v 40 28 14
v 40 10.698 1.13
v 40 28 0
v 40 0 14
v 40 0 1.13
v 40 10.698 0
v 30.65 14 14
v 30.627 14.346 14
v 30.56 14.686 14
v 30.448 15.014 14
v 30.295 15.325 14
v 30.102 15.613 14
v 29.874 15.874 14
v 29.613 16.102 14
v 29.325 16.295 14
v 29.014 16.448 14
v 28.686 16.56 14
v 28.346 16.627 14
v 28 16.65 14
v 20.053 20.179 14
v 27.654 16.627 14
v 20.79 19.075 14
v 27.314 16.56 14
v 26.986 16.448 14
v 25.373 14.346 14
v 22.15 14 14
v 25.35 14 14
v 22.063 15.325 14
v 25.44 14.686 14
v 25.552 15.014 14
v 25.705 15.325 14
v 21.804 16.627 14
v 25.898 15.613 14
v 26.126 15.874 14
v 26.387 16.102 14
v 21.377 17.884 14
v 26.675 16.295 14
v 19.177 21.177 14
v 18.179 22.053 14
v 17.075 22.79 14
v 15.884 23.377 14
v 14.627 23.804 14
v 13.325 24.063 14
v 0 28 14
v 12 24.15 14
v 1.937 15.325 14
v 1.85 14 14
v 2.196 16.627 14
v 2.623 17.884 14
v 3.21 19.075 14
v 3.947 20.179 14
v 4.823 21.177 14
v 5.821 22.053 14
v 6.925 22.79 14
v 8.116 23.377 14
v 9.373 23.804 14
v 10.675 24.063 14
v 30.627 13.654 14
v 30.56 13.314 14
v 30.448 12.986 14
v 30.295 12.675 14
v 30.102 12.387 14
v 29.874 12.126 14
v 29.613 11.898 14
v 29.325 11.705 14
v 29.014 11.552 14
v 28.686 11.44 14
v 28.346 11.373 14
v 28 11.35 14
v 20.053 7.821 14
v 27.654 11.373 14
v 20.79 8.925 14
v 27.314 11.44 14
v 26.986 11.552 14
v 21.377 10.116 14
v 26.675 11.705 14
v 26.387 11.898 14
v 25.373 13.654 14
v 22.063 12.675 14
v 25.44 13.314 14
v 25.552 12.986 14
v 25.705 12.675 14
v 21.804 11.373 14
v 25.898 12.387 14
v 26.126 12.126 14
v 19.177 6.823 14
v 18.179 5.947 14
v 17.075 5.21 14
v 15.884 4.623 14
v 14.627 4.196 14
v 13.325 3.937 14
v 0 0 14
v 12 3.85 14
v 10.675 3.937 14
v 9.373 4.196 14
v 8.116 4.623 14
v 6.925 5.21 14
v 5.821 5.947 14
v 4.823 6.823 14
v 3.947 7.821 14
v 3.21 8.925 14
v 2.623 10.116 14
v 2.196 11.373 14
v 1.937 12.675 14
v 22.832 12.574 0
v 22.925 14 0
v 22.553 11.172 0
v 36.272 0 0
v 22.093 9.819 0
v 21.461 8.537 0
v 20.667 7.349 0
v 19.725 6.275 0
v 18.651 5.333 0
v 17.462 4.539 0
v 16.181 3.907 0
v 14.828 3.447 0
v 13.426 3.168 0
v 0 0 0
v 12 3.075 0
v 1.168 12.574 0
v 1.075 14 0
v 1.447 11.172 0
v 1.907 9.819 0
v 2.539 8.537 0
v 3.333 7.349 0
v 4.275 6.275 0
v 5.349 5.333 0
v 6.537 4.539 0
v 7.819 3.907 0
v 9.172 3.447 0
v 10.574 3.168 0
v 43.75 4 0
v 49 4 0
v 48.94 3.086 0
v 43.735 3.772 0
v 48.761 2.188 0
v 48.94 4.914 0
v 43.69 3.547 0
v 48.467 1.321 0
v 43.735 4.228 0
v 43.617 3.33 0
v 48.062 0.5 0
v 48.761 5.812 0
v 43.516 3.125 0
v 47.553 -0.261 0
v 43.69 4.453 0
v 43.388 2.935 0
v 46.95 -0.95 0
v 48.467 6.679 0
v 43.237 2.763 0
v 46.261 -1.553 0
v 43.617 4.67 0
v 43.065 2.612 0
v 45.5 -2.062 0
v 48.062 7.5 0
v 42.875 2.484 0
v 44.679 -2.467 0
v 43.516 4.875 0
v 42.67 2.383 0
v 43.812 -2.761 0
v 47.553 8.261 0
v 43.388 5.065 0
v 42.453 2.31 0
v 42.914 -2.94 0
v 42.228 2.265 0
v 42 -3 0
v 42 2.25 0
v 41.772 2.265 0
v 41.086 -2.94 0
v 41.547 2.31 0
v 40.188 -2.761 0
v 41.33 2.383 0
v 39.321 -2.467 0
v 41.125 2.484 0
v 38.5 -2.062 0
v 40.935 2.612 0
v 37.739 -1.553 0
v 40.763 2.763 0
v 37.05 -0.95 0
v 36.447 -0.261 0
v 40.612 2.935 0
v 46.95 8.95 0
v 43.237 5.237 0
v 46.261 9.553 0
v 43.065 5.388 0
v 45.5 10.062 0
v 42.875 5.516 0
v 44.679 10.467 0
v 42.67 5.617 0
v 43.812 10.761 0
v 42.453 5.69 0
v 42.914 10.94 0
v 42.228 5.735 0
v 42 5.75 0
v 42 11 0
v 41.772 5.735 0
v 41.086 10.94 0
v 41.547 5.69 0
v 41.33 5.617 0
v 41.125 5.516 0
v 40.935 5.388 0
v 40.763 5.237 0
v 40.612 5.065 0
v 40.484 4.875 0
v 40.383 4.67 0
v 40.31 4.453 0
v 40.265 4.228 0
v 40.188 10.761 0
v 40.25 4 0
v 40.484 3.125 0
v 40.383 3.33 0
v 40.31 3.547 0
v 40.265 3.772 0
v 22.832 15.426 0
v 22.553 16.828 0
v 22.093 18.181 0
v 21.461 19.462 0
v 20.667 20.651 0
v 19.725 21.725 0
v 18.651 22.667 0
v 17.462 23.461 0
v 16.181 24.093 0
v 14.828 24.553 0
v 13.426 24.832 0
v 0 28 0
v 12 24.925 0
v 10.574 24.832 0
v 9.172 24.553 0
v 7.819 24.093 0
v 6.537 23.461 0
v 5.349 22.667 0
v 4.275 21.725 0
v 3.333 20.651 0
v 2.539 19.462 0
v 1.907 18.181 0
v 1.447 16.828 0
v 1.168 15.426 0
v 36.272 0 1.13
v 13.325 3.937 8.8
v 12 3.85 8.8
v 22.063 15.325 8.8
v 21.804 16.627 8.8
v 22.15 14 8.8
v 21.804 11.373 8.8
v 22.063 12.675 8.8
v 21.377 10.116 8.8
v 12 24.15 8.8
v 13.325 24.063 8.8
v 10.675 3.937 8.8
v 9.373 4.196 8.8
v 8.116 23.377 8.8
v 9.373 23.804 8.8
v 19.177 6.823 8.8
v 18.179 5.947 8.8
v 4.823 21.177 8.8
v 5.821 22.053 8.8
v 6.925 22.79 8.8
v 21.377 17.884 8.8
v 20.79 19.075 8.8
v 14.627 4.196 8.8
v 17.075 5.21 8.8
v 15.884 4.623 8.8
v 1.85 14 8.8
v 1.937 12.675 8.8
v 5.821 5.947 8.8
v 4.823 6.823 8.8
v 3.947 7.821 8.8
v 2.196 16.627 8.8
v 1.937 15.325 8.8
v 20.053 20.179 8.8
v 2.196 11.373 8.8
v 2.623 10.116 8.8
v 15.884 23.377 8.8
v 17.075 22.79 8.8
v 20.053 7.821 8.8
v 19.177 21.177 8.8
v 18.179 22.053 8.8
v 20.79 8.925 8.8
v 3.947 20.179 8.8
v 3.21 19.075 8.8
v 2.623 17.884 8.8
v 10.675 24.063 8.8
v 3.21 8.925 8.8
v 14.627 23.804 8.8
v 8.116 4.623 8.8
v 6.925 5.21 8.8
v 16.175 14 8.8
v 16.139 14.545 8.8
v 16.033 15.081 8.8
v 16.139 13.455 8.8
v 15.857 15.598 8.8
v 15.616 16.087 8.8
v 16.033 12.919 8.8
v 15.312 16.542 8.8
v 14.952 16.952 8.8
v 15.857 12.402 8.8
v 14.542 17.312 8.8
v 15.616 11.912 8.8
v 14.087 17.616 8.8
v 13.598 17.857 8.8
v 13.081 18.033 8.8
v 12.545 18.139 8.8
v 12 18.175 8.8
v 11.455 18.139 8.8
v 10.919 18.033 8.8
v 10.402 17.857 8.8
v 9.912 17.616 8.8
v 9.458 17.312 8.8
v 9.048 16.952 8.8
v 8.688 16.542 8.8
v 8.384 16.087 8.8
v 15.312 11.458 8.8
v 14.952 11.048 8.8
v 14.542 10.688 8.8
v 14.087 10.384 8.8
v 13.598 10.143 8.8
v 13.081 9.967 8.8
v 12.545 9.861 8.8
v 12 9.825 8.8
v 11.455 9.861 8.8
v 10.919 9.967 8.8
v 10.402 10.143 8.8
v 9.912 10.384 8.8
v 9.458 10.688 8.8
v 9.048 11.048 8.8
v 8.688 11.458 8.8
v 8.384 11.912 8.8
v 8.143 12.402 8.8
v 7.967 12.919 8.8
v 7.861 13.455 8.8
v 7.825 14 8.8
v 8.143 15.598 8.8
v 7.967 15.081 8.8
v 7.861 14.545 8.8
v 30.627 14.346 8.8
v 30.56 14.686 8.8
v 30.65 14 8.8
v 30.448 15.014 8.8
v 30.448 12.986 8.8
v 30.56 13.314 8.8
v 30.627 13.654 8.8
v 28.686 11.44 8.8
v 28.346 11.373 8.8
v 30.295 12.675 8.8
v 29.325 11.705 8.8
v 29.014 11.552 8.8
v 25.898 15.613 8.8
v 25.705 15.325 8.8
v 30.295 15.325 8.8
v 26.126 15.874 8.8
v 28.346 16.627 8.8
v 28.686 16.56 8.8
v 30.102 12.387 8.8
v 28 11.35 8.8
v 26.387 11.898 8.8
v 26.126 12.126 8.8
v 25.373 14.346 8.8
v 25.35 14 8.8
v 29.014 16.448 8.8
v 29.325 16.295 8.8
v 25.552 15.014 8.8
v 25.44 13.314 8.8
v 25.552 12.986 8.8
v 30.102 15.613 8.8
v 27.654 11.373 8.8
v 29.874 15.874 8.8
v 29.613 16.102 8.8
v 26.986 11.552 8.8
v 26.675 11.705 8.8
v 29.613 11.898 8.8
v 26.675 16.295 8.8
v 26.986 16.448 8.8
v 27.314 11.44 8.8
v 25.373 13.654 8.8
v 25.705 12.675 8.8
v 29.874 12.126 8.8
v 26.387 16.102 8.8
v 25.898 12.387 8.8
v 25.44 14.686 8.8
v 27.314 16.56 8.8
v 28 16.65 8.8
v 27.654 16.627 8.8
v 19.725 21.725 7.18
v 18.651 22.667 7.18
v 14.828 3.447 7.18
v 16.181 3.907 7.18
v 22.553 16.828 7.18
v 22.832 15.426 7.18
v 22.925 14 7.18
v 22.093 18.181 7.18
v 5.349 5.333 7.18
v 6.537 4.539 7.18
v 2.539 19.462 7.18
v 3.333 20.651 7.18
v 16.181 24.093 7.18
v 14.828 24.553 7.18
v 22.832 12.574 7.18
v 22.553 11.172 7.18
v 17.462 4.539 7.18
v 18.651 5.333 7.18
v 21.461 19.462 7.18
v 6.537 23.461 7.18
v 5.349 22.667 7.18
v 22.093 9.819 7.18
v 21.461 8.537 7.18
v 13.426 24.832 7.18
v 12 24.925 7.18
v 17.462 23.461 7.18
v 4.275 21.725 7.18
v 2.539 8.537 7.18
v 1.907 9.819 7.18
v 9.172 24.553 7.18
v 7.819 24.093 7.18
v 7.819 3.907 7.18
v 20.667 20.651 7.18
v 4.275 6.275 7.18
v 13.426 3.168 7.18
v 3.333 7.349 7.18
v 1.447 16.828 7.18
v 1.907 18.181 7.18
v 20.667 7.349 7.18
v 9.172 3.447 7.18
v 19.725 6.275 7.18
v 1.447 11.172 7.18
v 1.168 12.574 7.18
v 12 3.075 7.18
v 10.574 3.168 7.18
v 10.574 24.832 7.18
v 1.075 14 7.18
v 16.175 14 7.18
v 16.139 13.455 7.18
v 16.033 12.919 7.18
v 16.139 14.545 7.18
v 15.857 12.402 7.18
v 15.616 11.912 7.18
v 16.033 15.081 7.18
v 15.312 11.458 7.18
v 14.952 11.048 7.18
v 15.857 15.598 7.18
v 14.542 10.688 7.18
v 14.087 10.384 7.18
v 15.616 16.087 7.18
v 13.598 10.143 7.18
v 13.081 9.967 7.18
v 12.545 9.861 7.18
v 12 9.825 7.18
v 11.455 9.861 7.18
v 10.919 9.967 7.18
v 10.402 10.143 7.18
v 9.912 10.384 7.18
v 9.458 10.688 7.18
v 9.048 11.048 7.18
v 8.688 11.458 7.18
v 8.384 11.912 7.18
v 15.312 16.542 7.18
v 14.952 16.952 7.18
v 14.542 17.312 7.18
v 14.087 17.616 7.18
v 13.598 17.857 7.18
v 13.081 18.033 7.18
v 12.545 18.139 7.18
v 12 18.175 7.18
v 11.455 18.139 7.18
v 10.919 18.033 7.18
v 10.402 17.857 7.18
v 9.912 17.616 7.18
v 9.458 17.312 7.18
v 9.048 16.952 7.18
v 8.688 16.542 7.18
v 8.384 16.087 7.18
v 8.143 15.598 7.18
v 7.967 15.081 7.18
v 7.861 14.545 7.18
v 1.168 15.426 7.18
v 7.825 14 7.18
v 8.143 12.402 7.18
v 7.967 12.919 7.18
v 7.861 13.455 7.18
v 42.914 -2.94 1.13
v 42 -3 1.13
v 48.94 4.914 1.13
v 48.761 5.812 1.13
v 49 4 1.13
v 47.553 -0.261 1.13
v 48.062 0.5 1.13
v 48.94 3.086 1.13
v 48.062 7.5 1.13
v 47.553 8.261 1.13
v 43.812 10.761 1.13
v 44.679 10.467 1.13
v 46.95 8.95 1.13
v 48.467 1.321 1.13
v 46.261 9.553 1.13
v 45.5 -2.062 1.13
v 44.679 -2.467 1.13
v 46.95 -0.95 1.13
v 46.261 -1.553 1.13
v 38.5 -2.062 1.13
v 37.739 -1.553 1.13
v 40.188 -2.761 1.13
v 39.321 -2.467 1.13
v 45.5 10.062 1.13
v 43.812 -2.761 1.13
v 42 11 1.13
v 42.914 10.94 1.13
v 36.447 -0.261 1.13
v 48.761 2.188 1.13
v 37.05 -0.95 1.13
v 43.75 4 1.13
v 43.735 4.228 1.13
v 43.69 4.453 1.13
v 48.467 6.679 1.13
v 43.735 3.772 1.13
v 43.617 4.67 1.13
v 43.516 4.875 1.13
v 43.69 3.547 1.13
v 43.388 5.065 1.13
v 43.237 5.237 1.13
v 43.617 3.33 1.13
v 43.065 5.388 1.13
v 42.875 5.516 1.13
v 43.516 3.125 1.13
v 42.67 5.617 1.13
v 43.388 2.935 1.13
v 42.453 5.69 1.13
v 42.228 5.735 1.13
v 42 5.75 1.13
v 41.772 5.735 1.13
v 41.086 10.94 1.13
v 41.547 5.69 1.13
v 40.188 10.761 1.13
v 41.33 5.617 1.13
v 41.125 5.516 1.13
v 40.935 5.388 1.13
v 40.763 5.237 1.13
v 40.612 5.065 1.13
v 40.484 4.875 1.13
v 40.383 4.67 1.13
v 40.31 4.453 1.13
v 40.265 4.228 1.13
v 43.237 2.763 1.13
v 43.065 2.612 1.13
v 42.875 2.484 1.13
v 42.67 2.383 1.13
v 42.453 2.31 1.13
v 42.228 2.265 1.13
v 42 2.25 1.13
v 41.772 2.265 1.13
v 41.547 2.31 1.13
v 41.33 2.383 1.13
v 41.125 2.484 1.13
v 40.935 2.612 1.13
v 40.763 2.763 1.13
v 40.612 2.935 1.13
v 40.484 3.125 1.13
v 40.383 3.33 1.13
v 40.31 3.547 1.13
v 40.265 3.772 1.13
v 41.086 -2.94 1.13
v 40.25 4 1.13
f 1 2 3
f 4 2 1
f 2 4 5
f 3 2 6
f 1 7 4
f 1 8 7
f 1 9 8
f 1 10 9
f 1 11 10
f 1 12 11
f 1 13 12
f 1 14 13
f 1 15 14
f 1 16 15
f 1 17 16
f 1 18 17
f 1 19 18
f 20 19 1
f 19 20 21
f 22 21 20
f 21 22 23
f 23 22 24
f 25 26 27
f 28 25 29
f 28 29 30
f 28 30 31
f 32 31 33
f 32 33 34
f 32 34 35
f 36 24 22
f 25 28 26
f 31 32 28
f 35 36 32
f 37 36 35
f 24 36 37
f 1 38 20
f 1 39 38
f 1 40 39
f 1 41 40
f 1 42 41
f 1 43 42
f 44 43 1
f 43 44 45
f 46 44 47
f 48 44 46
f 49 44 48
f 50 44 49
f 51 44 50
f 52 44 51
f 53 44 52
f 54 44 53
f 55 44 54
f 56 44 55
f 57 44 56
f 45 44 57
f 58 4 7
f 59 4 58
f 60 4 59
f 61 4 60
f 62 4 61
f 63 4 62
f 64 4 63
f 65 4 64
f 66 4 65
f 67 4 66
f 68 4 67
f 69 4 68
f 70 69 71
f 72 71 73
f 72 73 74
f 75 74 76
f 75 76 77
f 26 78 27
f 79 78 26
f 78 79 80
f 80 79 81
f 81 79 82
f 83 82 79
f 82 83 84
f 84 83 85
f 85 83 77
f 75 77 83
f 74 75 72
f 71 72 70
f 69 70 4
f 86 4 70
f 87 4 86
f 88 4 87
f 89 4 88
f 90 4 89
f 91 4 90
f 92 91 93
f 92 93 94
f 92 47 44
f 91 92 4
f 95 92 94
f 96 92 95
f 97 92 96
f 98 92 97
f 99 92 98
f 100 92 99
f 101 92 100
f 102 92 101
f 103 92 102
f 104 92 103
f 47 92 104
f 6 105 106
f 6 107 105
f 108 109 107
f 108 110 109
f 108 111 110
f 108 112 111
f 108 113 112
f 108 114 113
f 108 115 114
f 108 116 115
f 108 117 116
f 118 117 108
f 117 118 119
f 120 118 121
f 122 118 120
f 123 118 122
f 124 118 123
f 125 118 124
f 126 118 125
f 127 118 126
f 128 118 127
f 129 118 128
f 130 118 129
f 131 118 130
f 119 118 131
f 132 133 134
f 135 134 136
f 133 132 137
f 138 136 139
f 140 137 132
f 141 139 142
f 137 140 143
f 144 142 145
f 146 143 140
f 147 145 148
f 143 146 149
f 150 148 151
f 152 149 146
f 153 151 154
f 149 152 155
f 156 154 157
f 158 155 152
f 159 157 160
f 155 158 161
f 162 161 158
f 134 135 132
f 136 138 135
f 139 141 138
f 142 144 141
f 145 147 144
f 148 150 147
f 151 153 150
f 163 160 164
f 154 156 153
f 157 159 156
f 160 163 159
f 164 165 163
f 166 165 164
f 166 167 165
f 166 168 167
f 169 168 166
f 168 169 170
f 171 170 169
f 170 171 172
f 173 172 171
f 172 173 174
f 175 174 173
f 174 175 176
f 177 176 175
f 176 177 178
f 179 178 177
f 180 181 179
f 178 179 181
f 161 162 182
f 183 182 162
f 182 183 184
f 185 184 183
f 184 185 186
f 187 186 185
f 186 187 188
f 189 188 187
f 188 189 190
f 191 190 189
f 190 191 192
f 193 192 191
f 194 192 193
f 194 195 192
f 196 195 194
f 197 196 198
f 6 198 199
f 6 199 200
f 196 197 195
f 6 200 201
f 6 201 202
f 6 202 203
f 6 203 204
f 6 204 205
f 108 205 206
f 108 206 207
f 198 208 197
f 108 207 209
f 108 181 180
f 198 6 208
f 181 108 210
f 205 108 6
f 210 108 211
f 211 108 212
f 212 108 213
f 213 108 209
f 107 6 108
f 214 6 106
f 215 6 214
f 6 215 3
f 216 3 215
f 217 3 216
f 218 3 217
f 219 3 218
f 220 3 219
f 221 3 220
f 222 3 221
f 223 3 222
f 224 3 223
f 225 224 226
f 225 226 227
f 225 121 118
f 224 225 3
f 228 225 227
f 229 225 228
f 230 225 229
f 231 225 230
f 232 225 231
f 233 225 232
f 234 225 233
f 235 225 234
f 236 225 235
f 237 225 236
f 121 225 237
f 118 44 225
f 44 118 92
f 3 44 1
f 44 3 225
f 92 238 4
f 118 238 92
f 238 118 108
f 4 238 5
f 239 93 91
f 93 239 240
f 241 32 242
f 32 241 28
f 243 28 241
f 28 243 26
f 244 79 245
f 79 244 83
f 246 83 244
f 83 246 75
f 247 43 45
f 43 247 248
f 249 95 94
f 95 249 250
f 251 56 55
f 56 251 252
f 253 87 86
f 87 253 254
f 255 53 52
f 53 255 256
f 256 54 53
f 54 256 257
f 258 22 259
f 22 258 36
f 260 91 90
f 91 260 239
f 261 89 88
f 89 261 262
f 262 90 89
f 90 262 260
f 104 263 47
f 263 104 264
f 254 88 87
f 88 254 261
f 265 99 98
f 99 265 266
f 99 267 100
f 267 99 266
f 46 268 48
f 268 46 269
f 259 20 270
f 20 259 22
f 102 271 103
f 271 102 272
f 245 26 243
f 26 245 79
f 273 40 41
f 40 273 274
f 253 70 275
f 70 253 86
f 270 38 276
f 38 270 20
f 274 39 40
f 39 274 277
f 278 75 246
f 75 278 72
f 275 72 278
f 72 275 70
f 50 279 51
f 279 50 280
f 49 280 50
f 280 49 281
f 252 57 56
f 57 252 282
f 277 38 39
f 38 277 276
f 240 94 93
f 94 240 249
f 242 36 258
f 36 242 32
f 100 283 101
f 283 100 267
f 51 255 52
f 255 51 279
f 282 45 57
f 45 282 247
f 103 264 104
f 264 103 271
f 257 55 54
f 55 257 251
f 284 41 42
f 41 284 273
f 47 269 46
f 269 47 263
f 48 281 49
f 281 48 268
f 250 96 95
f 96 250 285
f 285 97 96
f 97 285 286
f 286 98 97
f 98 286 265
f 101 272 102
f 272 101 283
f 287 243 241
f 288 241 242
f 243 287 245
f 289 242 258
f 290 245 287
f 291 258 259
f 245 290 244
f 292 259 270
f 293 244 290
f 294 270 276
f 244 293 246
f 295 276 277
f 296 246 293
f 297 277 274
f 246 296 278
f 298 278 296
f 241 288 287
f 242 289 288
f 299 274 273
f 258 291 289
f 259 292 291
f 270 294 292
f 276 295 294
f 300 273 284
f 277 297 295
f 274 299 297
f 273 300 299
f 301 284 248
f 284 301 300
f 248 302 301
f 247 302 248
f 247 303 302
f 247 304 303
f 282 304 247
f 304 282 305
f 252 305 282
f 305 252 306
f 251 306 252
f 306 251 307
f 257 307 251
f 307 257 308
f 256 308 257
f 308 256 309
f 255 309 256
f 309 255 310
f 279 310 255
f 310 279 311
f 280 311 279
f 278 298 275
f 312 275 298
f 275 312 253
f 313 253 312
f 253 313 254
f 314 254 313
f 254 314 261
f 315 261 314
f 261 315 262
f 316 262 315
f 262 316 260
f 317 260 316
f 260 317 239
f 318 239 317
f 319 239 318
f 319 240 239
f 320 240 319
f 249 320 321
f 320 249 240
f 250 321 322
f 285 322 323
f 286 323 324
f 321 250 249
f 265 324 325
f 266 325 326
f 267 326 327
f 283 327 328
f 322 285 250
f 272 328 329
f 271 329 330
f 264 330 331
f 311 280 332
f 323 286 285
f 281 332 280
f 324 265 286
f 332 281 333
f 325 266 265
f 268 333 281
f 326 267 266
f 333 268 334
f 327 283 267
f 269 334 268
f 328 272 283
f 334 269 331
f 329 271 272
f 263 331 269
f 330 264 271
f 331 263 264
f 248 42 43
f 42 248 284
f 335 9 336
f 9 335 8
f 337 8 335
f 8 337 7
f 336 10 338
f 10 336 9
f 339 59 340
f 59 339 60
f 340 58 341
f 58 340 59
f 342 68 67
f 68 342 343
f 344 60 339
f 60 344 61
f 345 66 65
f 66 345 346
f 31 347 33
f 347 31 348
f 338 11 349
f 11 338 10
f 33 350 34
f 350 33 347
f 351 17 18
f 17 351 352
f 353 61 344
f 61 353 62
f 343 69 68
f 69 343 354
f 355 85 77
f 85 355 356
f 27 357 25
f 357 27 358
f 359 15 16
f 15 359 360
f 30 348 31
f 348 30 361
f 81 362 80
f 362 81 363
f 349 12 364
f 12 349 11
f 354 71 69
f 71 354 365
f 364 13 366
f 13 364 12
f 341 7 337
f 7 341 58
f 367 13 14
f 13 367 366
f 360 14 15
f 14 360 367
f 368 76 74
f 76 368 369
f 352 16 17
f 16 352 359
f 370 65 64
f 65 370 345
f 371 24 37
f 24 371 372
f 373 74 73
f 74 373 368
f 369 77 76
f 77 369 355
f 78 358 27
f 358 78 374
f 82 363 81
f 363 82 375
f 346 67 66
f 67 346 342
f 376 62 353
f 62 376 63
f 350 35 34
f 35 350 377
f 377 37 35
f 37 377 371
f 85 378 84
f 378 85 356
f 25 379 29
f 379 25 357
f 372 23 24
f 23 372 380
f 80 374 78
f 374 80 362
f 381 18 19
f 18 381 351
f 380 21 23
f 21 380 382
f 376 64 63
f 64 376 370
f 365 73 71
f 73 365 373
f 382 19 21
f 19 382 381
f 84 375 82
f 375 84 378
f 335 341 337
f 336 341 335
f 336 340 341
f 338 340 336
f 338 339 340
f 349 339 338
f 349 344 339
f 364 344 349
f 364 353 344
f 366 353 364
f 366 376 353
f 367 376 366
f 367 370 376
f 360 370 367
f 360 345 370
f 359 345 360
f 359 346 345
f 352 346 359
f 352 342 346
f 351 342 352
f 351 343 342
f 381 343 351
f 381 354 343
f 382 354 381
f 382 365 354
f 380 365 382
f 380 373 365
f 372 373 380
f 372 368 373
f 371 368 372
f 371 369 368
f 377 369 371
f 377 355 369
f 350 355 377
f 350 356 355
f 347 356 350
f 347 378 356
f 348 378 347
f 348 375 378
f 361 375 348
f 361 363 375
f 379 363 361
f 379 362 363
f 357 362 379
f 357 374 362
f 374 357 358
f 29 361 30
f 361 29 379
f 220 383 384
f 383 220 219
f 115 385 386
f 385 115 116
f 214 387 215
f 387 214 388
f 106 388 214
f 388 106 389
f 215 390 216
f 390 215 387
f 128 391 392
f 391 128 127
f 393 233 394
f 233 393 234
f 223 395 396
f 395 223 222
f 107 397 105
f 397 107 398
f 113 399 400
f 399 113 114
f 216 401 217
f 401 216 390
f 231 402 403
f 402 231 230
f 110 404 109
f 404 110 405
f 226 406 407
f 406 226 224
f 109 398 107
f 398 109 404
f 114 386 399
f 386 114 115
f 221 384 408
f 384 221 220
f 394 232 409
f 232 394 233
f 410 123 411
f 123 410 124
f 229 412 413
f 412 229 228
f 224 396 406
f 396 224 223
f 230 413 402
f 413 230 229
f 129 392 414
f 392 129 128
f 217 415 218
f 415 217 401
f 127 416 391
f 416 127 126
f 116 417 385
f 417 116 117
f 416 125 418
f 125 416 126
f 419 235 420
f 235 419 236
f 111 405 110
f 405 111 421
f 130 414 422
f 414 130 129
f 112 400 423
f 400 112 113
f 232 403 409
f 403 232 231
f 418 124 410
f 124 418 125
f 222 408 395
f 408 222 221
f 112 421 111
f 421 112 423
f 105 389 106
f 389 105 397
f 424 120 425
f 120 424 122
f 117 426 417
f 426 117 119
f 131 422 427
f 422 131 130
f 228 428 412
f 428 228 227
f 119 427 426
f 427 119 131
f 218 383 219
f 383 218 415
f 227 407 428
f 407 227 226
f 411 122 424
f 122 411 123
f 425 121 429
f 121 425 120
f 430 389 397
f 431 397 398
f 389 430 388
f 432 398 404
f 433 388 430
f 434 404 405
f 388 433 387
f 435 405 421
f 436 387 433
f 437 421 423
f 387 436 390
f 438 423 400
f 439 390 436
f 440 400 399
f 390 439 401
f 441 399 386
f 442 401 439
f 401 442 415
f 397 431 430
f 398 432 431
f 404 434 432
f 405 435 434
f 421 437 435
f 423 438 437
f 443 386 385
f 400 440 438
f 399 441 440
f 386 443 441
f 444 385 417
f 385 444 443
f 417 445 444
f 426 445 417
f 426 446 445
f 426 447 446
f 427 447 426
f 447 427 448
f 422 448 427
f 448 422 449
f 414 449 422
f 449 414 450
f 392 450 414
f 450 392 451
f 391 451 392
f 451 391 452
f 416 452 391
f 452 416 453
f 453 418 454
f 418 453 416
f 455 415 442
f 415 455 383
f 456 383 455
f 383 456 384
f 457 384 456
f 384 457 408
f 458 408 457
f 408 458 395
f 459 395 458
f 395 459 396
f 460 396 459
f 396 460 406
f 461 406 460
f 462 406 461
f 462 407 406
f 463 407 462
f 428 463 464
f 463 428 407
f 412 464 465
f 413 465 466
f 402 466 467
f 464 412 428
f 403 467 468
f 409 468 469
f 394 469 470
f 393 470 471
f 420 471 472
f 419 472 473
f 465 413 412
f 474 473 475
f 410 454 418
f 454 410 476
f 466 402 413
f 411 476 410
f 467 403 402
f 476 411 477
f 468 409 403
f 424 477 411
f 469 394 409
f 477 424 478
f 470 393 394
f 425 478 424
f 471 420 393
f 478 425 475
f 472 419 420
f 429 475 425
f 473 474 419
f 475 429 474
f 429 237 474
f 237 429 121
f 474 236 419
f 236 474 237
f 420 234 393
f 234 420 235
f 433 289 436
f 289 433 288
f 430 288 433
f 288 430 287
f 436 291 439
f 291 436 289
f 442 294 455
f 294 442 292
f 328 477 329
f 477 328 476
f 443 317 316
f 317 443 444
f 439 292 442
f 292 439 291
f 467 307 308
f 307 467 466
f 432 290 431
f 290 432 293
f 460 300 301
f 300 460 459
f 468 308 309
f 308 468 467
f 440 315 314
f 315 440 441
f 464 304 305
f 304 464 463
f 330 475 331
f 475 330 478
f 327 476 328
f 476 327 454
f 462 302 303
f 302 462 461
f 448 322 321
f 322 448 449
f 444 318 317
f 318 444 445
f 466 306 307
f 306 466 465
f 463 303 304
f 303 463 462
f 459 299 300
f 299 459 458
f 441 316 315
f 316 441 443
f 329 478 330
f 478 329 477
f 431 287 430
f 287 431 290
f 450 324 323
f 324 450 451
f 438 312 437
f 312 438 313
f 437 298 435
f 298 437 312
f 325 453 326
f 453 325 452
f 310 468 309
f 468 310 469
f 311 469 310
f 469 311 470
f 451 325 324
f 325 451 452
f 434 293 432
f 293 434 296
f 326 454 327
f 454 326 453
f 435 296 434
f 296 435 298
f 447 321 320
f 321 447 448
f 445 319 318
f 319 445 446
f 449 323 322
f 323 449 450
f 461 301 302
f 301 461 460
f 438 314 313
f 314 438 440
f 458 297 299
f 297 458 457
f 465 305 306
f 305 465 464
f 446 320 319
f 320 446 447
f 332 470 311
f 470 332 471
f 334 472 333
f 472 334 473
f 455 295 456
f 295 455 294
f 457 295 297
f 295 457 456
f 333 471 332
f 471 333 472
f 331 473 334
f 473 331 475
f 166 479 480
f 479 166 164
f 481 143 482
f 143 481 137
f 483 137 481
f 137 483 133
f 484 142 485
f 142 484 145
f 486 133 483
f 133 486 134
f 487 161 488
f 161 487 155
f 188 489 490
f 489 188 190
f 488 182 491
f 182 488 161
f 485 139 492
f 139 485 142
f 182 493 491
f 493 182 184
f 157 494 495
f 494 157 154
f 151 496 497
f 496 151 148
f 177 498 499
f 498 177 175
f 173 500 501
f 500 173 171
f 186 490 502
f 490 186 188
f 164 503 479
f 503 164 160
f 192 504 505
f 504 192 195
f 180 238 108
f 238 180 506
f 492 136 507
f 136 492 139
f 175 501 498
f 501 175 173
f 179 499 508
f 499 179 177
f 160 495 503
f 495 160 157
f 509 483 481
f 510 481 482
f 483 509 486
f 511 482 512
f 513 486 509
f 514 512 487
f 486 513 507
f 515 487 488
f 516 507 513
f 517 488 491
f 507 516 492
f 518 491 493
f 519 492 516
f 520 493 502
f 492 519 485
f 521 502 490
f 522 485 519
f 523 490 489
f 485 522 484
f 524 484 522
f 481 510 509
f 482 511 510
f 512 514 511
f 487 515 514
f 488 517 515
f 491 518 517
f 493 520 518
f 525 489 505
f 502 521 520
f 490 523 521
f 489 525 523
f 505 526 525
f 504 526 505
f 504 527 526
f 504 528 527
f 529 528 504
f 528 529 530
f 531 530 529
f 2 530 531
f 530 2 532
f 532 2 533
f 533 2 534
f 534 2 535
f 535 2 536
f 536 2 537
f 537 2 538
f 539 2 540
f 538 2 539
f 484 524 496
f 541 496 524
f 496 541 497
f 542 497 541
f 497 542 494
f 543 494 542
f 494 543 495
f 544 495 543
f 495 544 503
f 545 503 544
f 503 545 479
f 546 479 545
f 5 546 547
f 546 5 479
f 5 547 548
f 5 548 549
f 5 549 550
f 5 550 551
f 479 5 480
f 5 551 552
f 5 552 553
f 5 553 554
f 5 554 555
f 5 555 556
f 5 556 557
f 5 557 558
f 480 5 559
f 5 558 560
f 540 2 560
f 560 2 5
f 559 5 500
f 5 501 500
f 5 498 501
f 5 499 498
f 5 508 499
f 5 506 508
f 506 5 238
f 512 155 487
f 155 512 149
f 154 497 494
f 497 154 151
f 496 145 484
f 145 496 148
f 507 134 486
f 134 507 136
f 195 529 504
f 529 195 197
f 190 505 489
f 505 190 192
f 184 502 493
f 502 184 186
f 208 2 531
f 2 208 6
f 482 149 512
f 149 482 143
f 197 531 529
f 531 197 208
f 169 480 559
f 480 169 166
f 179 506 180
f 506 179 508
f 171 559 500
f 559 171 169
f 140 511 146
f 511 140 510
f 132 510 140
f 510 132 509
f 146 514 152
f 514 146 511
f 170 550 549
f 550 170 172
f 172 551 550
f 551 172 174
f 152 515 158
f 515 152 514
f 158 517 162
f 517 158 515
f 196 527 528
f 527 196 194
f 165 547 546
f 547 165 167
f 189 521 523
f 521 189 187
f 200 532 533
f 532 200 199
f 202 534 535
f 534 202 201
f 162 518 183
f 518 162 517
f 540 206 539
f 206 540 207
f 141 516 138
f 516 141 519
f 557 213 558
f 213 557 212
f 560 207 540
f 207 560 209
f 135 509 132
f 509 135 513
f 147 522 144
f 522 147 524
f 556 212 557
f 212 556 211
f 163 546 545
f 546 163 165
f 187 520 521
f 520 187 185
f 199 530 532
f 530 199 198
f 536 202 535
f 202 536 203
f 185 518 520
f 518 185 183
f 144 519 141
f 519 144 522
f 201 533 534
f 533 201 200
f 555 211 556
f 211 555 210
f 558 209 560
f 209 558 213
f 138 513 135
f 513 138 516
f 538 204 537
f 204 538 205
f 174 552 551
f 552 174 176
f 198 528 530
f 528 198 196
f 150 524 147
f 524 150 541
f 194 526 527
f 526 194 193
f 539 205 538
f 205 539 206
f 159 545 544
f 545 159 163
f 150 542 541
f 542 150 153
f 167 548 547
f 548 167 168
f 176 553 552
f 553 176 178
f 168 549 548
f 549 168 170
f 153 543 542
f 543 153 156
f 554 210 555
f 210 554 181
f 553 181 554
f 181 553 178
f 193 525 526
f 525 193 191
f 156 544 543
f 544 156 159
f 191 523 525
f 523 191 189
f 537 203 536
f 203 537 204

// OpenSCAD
// file: parameters.scad
// =============================================================================
// Gen-AL Stacked dual-stator mid-rotor copper-max plus — WOUND-AWARE (HARD GATE)
// ONE mid dual-face Halbach rotor | TWO wound pancake stators | 18 coils ×155 t
// =============================================================================

wire_awg            = 26;
wire_od             = 0.45;
turns               = 155;      // +10 vs Gen-AI 145; 18×155×~0.120 ≈ 335 m
fill                = 0.70;
layers_per_face     = 2;
wind_build_axial    = layers_per_face * wire_od * fill;   // 0.63
wind_build_radial   = 3 * wire_od * fill;                 // 0.945

coil_id_r           = 18.5;
coil_od_r           = 63.5;
span_deg            = 34.0;     // 9 stations × 40°
former_web          = 1.40;     // thinner vs AI 1.50
flange_t            = 0.60;
wall                = 1.2;
slot_w              = 2.4;
mount_hole          = 3.5;
tab_len             = 7.0;

former_bare_h       = former_web + 2 * flange_t;            // 2.60
coil_envelope_h     = former_bare_h + 2 * wind_build_axial; // 3.86

run_clear           = 0.50;     // tighter vs AI 0.52
gap_spacer_h        = run_clear + wind_build_axial;         // 1.13
m2m                 = coil_envelope_h + 2 * run_clear;      // 4.86 per gap

coil_stations       = 9;        // per stator; ×2 = 18 total
bay_r_in            = coil_id_r - 2.0 - wind_build_radial;
bay_r_out           = coil_od_r + 2.0 + wind_build_radial;
bay_span            = span_deg + 4.0;
bay_offset          = 2.0;
bay_depth           = former_bare_h + wind_build_axial;     // wound sits in bay
stator_back_web     = 2.0;
stator_thick        = bay_depth + stator_back_web;
stator_od           = 156.0;
shaft_clear_stator  = 38.0;
coil_mount_r        = 28.0;

large_pocket_d      = 20.3;
small_pocket_d      = 5.3;
pocket_h            = 5.2;
large_n             = 8;
R_large             = 41.0;     // tighter copper overlap vs AI R=42
R_small_inner       = 27.0;
R_small_mid         = 41.0;
R_small_outer       = 57.0;
carrier_od          = 154.0;
mid_carrier_thick   = 12.0;
hub_h               = 10.0;
hub_od              = 30.0;
rotor_b_offset_deg  = 22.5;

shaft_bore          = 8.35;
bearing_d           = 21.85;
bearing_h           = 7.2;
m3_clear            = 3.5;
bolt_r_inner        = 36.0;
bolt_n_inner        = 6;
flange_bolt_r       = 72.0;
flange_bolt_n       = 6;
brace_r             = 68.0;
brace_d             = 4.3;
brace_n             = 4;

spacer_pad_od       = 14.0;
spacer_pad_id       = m3_clear;
endbell_od          = 156.0;
endbell_thick       = 8.0;
endbell_shaft_clear = 10.0;

$fn = 64;
// main file
// Gen-AL fit coupon — magnet pockets + 608 + spacer height
include <parameters.scad>;
$fn = 48;
block_w = 40; block_d = 28; block_h = 14;
difference() {
    cube([block_w, block_d, block_h]);
    translate([12, block_d/2, block_h - pocket_h])
        cylinder(d=large_pocket_d, h=pocket_h + 0.2);
    translate([28, block_d/2, block_h - pocket_h])
        cylinder(d=small_pocket_d, h=pocket_h + 0.2);
    translate([12, block_d/2, -0.02])
        cylinder(d=bearing_d, h=bearing_h);
    translate([12, block_d/2, -0.1])
        cylinder(d=shaft_bore, h=block_h + 1);
}
translate([block_w + 2, 4, 0])
    difference() {
        cylinder(d=spacer_pad_od, h=gap_spacer_h);
        translate([0, 0, -0.1]) cylinder(d=spacer_pad_id, h=gap_spacer_h + 0.2);
    }
